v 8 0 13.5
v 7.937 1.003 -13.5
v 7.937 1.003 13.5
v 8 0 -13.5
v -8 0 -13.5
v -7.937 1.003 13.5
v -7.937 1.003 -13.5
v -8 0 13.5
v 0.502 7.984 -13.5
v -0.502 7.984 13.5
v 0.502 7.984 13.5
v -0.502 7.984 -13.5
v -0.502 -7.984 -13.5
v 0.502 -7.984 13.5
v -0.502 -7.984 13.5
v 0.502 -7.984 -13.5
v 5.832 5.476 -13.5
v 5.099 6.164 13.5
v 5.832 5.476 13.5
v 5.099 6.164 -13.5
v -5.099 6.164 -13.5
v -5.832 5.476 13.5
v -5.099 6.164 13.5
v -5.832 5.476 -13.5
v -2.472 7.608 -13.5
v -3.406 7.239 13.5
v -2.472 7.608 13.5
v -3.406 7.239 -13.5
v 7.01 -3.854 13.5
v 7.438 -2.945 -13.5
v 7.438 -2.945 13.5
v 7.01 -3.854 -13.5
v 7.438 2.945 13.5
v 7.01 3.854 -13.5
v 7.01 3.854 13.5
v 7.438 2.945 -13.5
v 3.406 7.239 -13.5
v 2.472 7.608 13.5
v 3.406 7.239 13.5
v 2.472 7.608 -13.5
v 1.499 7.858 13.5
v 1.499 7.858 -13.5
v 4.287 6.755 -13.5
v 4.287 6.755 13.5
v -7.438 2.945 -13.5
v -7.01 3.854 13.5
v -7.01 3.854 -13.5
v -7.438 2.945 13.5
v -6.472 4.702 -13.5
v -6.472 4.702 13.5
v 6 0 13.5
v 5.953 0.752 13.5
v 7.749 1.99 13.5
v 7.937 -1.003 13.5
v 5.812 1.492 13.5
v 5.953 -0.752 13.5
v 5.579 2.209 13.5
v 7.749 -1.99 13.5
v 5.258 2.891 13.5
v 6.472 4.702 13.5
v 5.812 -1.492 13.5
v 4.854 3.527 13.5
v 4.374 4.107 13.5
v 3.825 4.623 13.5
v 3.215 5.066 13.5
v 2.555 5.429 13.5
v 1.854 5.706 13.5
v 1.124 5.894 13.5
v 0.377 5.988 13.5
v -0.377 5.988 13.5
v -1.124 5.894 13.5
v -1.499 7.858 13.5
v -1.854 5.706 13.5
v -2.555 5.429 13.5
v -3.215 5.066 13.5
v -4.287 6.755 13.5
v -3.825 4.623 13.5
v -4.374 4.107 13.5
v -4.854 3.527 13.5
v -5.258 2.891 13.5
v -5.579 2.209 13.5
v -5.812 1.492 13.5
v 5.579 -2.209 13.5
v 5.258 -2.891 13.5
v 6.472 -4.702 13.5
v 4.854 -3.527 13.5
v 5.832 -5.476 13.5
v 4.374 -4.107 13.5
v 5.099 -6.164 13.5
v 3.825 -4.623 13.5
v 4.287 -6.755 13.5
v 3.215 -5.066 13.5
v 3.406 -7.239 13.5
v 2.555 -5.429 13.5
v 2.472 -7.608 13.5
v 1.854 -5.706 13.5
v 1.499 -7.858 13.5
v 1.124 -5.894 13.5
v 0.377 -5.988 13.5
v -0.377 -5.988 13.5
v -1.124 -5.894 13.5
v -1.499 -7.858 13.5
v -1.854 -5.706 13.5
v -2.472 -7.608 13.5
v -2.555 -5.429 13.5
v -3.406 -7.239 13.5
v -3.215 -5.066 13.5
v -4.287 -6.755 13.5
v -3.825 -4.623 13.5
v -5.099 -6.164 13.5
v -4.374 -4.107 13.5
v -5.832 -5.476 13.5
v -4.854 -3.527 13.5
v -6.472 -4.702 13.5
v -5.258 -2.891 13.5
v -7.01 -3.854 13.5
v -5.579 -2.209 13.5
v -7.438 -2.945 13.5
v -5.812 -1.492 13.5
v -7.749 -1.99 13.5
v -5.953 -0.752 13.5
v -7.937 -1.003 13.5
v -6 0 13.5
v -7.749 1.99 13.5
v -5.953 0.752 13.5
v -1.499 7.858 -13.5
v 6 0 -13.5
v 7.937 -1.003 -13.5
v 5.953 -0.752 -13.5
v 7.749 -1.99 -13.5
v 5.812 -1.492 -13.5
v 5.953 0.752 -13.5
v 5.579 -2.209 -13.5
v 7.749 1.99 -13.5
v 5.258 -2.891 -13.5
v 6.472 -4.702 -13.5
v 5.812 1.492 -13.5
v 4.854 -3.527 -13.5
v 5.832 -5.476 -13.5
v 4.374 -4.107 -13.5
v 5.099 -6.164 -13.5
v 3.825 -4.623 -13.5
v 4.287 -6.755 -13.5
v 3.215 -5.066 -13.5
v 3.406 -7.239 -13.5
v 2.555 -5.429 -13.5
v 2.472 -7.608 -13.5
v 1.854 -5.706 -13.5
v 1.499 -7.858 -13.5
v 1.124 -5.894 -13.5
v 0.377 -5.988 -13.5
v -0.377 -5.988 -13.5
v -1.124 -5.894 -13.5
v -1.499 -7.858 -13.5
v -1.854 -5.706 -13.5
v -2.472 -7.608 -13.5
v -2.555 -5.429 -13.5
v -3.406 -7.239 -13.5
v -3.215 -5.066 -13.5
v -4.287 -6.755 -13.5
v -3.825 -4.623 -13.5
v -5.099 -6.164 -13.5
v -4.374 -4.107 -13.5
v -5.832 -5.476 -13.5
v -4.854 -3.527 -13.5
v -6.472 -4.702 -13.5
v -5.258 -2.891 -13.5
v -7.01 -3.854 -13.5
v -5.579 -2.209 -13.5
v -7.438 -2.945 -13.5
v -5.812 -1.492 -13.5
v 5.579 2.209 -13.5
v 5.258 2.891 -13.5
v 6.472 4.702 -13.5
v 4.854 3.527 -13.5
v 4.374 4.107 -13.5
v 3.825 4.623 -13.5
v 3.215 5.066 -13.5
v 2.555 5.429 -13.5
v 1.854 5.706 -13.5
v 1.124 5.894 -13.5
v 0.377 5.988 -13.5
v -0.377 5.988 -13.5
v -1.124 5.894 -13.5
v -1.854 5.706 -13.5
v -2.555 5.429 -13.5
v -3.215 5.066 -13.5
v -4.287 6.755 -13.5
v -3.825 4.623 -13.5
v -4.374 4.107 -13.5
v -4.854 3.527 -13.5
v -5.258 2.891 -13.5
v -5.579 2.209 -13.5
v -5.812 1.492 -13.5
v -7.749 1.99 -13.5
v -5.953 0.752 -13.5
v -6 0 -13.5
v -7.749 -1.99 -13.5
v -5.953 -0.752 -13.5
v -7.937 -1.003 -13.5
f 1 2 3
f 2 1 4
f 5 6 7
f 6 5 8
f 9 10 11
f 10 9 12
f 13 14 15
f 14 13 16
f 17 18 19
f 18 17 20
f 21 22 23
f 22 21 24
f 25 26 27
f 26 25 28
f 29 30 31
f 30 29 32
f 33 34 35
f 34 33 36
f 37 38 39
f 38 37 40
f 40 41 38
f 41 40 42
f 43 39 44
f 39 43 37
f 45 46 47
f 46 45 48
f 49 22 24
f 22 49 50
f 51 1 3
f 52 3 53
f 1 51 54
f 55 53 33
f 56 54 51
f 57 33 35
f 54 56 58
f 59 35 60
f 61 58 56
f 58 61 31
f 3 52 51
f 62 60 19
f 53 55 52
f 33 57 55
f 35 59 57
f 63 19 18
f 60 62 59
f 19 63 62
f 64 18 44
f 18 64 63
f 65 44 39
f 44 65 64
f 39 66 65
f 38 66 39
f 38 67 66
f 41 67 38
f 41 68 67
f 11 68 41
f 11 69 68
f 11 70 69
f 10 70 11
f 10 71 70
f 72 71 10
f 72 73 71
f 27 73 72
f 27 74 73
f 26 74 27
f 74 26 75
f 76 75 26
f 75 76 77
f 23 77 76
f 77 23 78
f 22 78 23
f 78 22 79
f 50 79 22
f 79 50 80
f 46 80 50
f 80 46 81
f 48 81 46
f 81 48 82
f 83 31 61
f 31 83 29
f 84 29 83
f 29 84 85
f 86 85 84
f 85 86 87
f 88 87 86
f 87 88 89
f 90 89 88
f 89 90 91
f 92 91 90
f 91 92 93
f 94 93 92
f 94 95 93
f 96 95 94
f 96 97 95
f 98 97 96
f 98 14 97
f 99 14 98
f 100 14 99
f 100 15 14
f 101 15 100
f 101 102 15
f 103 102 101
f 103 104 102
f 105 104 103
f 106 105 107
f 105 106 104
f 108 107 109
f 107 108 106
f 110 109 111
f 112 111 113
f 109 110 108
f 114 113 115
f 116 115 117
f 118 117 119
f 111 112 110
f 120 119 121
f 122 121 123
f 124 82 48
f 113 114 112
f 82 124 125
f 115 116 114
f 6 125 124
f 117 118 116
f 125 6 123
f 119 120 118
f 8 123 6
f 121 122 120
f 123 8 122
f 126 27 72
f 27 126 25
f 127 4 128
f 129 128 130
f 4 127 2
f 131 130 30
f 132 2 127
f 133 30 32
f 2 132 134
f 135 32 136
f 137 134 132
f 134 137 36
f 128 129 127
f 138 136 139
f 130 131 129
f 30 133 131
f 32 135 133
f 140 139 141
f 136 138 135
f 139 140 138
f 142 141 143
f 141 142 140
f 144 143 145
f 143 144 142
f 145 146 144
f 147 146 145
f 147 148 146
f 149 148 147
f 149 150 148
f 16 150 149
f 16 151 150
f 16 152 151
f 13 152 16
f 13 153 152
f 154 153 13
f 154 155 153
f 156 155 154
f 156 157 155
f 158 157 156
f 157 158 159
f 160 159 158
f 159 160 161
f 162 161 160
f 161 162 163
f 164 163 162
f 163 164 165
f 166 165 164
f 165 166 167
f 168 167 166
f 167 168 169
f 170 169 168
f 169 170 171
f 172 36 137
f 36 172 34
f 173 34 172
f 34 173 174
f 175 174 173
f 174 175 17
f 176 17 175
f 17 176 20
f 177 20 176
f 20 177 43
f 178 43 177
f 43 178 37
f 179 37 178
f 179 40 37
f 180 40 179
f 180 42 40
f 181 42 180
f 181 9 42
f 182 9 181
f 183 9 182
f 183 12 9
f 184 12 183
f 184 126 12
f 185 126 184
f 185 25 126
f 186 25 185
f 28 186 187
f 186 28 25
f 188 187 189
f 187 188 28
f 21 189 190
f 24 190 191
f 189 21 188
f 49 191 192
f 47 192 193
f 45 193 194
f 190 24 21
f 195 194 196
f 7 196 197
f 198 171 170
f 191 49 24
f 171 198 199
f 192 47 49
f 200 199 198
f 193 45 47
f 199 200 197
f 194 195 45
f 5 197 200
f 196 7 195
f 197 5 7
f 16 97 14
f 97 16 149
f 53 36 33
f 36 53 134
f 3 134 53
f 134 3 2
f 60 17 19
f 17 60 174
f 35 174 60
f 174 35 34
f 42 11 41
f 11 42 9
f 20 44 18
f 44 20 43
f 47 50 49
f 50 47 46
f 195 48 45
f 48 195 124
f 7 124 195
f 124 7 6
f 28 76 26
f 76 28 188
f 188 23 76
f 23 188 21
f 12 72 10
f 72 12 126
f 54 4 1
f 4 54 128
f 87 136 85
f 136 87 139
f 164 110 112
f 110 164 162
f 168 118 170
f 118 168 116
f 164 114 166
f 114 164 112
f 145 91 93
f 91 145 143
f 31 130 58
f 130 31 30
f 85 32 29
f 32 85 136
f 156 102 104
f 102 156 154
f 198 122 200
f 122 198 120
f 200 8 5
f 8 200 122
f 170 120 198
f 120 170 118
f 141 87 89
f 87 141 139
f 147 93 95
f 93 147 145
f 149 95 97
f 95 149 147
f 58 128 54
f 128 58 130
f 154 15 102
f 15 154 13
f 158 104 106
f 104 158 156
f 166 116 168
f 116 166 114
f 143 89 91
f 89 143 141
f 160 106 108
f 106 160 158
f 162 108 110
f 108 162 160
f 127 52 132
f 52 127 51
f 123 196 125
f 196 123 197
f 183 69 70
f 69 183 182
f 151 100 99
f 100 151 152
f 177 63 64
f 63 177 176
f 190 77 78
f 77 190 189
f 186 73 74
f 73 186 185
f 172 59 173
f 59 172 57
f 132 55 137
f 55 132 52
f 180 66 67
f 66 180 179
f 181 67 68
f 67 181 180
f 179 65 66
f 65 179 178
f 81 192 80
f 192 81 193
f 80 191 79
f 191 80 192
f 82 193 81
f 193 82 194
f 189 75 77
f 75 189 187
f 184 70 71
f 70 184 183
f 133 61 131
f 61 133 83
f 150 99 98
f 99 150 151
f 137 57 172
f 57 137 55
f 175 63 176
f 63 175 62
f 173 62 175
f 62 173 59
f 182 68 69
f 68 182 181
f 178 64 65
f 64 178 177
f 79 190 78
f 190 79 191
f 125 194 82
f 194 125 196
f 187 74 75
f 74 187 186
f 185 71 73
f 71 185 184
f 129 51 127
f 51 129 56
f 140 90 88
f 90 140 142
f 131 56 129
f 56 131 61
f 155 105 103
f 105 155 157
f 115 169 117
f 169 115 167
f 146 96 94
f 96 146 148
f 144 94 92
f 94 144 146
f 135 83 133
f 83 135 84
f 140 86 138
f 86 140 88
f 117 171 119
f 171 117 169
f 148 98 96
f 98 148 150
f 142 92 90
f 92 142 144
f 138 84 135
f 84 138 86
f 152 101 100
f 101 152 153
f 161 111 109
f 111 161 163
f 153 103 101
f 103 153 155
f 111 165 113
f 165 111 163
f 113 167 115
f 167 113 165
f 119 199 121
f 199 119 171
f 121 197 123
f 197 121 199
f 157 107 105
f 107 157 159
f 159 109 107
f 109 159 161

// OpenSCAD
$fn = 50;


difference() {
	union() {
		translate(v = [0, 0, -13.5000000000]) {
			cylinder(h = 27, r = 8.0000000000);
		}
	}
	union() {
		translate(v = [0, 0, -100.0000000000]) {
			cylinder(h = 200, r = 6);
		}
	}
}
